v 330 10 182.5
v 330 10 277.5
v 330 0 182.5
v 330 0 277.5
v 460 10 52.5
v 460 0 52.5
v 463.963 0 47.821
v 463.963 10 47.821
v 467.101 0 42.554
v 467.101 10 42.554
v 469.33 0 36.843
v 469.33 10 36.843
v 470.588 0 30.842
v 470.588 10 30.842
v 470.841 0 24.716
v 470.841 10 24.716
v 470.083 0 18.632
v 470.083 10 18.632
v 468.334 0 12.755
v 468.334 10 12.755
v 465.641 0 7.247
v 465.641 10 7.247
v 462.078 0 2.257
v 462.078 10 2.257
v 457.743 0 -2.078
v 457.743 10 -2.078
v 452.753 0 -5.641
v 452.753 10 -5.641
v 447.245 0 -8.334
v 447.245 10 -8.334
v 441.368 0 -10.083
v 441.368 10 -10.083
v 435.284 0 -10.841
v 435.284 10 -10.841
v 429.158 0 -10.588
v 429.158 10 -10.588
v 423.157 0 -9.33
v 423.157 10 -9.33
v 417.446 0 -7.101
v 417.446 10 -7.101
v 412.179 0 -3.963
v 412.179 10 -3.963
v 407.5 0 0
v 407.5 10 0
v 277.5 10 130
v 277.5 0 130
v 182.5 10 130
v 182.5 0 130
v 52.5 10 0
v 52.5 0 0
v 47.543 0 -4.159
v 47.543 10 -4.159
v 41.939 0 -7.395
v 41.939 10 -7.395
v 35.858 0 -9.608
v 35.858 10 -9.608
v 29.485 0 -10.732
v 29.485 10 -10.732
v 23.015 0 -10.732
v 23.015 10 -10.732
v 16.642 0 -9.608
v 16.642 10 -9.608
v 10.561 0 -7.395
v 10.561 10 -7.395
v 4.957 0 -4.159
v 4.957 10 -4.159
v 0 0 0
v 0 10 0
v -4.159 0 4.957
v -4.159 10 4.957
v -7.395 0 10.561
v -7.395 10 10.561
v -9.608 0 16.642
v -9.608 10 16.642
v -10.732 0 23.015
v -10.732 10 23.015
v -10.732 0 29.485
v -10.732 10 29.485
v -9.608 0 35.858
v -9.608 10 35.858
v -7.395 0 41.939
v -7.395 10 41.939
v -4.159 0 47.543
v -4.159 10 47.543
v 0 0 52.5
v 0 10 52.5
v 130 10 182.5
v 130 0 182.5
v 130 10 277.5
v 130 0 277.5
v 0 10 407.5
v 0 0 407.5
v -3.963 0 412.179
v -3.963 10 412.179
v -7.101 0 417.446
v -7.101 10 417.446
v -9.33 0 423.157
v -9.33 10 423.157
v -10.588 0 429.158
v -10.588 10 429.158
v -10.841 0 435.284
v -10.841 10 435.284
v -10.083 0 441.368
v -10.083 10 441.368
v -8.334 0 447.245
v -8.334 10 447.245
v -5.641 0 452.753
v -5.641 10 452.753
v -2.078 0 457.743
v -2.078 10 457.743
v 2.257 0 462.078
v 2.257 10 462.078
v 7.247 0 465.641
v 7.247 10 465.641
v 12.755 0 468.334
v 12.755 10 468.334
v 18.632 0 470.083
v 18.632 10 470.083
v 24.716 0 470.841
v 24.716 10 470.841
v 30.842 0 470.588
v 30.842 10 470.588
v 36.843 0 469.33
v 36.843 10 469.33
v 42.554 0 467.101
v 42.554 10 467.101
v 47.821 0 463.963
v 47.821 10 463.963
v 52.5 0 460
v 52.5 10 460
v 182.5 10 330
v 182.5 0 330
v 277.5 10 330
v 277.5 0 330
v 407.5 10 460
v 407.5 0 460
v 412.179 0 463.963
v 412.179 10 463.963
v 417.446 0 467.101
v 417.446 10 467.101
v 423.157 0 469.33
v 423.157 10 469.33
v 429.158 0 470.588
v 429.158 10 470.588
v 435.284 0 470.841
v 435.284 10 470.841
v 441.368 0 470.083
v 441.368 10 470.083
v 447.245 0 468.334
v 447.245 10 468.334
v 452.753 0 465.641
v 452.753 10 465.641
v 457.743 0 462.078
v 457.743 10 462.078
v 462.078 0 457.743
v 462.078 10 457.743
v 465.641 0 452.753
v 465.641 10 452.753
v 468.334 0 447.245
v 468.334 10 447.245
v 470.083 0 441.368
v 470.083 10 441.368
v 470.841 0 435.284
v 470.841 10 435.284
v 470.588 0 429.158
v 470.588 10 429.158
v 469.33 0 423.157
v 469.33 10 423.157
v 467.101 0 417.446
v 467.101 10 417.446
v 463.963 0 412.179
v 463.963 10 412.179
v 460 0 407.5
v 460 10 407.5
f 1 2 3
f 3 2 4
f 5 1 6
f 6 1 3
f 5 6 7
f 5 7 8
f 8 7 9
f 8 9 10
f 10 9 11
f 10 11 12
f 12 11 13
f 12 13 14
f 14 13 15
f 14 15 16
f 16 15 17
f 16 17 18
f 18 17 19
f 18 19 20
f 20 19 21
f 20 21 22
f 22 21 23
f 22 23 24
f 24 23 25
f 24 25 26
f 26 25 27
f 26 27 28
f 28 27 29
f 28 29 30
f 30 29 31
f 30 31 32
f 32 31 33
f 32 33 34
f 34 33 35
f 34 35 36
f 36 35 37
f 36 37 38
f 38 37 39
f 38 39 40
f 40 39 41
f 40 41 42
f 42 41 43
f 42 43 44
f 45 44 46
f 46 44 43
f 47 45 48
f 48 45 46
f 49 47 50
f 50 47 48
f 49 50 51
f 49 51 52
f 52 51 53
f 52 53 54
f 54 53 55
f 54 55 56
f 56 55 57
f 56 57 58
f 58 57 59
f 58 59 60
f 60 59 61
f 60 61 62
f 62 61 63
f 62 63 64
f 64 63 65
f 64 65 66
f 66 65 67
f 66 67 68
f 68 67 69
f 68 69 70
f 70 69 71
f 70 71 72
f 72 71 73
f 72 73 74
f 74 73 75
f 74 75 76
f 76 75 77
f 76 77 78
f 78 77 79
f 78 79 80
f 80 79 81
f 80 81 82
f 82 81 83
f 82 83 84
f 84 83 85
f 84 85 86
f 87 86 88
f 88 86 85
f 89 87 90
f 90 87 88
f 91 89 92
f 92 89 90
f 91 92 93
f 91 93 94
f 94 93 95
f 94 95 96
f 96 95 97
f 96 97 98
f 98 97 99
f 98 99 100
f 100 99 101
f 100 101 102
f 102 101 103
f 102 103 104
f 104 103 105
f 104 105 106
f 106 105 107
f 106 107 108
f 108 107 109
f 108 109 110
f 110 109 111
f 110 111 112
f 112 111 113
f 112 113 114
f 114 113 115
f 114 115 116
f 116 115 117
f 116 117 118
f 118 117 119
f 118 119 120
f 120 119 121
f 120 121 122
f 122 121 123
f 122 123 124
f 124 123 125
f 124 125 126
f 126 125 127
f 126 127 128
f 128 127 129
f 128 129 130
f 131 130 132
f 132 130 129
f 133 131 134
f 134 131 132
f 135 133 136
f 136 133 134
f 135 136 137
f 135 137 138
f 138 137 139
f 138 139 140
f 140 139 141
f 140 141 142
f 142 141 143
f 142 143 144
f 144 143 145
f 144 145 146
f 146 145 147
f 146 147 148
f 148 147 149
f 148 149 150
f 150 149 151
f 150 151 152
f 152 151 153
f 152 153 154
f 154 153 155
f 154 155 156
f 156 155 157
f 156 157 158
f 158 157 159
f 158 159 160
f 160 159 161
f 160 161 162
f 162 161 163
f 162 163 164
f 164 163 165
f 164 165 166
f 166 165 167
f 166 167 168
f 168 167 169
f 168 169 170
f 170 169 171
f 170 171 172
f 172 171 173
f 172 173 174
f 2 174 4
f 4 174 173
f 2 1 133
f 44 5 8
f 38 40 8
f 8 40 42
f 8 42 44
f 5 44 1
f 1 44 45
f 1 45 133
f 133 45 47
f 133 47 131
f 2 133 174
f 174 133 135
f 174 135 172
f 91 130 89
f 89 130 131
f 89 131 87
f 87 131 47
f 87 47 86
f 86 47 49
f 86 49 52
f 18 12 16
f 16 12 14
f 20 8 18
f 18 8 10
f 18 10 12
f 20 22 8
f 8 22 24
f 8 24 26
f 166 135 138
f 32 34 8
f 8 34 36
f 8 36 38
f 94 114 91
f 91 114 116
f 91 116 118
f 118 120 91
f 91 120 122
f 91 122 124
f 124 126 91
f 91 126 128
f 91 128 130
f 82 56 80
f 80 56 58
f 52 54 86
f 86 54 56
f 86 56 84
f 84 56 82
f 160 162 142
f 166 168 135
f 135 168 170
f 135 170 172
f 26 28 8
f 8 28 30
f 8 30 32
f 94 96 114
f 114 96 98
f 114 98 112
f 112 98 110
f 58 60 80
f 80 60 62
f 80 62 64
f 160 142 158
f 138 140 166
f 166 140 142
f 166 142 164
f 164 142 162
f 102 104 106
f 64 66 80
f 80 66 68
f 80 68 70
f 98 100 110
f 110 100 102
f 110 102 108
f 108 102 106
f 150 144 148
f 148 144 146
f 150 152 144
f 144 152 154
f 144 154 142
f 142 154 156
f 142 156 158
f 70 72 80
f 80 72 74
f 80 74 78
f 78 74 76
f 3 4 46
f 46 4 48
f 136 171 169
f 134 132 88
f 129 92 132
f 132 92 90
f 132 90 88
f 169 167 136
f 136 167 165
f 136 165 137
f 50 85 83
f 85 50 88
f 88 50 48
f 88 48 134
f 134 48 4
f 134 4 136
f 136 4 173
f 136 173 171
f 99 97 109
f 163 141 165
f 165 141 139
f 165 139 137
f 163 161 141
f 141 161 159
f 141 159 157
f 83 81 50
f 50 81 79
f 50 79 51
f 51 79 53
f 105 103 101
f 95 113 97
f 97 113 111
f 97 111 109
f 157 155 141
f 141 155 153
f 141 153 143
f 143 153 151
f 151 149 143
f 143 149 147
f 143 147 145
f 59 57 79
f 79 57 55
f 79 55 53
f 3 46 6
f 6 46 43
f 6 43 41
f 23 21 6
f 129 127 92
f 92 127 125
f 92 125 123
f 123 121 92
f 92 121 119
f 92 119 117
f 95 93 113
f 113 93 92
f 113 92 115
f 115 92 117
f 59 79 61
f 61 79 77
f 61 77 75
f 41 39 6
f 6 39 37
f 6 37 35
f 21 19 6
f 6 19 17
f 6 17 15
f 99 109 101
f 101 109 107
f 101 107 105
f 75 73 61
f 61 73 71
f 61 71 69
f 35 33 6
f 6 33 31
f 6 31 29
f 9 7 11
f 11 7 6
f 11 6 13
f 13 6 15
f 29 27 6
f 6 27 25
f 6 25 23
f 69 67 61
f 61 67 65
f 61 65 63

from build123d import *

# Parameters (mm, degrees)
SKETCH1_W           = 200
SKETCH1_H           = 200
BOSS_EXTRUDE1_DEPTH = 10


with BuildPart() as part:
    # Sketch1 → Boss-Extrude1 (new body)
    with BuildSketch(Plane(origin=(0, 0, 0), x_dir=(1, 0, 0), z_dir=(0, 1, 0))):
        with Locations((230, -230)):
            Rectangle(SKETCH1_W, SKETCH1_H)
        with BuildLine():
            Line((130, -330), (130, -277.5))
            Line((130, -277.5), (0, -407.5))
            ThreePointArc((0, -407.5), (0, -460), (52.5, -460))
            Line((52.5, -460), (182.5, -330))
            Line((182.5, -330), (130, -330))
        make_face()
        with BuildLine():
            Line((130, -130), (182.5, -130))
            Line((182.5, -130), (52.5, 0))
            ThreePointArc((52.5, 0), (0, 0), (0, -52.5))
            Line((0, -52.5), (130, -182.5))
            Line((130, -182.5), (130, -130))
        make_face()
        with BuildLine():
            Line((407.5, 0), (277.5, -130))
            Line((277.5, -130), (330, -130))
            Line((330, -130), (330, -182.5))
            Line((330, -182.5), (460, -52.5))
            ThreePointArc((460, -52.5), (460, 0), (407.5, 0))
        make_face()
        with BuildLine():
            Line((460, -407.5), (330, -277.5))
            Line((330, -277.5), (330, -330))
            Line((330, -330), (277.5, -330))
            Line((277.5, -330), (407.5, -460))
            ThreePointArc((407.5, -460), (460, -460), (460, -407.5))
        make_face()
    extrude(amount=BOSS_EXTRUDE1_DEPTH)


solid = part.part
